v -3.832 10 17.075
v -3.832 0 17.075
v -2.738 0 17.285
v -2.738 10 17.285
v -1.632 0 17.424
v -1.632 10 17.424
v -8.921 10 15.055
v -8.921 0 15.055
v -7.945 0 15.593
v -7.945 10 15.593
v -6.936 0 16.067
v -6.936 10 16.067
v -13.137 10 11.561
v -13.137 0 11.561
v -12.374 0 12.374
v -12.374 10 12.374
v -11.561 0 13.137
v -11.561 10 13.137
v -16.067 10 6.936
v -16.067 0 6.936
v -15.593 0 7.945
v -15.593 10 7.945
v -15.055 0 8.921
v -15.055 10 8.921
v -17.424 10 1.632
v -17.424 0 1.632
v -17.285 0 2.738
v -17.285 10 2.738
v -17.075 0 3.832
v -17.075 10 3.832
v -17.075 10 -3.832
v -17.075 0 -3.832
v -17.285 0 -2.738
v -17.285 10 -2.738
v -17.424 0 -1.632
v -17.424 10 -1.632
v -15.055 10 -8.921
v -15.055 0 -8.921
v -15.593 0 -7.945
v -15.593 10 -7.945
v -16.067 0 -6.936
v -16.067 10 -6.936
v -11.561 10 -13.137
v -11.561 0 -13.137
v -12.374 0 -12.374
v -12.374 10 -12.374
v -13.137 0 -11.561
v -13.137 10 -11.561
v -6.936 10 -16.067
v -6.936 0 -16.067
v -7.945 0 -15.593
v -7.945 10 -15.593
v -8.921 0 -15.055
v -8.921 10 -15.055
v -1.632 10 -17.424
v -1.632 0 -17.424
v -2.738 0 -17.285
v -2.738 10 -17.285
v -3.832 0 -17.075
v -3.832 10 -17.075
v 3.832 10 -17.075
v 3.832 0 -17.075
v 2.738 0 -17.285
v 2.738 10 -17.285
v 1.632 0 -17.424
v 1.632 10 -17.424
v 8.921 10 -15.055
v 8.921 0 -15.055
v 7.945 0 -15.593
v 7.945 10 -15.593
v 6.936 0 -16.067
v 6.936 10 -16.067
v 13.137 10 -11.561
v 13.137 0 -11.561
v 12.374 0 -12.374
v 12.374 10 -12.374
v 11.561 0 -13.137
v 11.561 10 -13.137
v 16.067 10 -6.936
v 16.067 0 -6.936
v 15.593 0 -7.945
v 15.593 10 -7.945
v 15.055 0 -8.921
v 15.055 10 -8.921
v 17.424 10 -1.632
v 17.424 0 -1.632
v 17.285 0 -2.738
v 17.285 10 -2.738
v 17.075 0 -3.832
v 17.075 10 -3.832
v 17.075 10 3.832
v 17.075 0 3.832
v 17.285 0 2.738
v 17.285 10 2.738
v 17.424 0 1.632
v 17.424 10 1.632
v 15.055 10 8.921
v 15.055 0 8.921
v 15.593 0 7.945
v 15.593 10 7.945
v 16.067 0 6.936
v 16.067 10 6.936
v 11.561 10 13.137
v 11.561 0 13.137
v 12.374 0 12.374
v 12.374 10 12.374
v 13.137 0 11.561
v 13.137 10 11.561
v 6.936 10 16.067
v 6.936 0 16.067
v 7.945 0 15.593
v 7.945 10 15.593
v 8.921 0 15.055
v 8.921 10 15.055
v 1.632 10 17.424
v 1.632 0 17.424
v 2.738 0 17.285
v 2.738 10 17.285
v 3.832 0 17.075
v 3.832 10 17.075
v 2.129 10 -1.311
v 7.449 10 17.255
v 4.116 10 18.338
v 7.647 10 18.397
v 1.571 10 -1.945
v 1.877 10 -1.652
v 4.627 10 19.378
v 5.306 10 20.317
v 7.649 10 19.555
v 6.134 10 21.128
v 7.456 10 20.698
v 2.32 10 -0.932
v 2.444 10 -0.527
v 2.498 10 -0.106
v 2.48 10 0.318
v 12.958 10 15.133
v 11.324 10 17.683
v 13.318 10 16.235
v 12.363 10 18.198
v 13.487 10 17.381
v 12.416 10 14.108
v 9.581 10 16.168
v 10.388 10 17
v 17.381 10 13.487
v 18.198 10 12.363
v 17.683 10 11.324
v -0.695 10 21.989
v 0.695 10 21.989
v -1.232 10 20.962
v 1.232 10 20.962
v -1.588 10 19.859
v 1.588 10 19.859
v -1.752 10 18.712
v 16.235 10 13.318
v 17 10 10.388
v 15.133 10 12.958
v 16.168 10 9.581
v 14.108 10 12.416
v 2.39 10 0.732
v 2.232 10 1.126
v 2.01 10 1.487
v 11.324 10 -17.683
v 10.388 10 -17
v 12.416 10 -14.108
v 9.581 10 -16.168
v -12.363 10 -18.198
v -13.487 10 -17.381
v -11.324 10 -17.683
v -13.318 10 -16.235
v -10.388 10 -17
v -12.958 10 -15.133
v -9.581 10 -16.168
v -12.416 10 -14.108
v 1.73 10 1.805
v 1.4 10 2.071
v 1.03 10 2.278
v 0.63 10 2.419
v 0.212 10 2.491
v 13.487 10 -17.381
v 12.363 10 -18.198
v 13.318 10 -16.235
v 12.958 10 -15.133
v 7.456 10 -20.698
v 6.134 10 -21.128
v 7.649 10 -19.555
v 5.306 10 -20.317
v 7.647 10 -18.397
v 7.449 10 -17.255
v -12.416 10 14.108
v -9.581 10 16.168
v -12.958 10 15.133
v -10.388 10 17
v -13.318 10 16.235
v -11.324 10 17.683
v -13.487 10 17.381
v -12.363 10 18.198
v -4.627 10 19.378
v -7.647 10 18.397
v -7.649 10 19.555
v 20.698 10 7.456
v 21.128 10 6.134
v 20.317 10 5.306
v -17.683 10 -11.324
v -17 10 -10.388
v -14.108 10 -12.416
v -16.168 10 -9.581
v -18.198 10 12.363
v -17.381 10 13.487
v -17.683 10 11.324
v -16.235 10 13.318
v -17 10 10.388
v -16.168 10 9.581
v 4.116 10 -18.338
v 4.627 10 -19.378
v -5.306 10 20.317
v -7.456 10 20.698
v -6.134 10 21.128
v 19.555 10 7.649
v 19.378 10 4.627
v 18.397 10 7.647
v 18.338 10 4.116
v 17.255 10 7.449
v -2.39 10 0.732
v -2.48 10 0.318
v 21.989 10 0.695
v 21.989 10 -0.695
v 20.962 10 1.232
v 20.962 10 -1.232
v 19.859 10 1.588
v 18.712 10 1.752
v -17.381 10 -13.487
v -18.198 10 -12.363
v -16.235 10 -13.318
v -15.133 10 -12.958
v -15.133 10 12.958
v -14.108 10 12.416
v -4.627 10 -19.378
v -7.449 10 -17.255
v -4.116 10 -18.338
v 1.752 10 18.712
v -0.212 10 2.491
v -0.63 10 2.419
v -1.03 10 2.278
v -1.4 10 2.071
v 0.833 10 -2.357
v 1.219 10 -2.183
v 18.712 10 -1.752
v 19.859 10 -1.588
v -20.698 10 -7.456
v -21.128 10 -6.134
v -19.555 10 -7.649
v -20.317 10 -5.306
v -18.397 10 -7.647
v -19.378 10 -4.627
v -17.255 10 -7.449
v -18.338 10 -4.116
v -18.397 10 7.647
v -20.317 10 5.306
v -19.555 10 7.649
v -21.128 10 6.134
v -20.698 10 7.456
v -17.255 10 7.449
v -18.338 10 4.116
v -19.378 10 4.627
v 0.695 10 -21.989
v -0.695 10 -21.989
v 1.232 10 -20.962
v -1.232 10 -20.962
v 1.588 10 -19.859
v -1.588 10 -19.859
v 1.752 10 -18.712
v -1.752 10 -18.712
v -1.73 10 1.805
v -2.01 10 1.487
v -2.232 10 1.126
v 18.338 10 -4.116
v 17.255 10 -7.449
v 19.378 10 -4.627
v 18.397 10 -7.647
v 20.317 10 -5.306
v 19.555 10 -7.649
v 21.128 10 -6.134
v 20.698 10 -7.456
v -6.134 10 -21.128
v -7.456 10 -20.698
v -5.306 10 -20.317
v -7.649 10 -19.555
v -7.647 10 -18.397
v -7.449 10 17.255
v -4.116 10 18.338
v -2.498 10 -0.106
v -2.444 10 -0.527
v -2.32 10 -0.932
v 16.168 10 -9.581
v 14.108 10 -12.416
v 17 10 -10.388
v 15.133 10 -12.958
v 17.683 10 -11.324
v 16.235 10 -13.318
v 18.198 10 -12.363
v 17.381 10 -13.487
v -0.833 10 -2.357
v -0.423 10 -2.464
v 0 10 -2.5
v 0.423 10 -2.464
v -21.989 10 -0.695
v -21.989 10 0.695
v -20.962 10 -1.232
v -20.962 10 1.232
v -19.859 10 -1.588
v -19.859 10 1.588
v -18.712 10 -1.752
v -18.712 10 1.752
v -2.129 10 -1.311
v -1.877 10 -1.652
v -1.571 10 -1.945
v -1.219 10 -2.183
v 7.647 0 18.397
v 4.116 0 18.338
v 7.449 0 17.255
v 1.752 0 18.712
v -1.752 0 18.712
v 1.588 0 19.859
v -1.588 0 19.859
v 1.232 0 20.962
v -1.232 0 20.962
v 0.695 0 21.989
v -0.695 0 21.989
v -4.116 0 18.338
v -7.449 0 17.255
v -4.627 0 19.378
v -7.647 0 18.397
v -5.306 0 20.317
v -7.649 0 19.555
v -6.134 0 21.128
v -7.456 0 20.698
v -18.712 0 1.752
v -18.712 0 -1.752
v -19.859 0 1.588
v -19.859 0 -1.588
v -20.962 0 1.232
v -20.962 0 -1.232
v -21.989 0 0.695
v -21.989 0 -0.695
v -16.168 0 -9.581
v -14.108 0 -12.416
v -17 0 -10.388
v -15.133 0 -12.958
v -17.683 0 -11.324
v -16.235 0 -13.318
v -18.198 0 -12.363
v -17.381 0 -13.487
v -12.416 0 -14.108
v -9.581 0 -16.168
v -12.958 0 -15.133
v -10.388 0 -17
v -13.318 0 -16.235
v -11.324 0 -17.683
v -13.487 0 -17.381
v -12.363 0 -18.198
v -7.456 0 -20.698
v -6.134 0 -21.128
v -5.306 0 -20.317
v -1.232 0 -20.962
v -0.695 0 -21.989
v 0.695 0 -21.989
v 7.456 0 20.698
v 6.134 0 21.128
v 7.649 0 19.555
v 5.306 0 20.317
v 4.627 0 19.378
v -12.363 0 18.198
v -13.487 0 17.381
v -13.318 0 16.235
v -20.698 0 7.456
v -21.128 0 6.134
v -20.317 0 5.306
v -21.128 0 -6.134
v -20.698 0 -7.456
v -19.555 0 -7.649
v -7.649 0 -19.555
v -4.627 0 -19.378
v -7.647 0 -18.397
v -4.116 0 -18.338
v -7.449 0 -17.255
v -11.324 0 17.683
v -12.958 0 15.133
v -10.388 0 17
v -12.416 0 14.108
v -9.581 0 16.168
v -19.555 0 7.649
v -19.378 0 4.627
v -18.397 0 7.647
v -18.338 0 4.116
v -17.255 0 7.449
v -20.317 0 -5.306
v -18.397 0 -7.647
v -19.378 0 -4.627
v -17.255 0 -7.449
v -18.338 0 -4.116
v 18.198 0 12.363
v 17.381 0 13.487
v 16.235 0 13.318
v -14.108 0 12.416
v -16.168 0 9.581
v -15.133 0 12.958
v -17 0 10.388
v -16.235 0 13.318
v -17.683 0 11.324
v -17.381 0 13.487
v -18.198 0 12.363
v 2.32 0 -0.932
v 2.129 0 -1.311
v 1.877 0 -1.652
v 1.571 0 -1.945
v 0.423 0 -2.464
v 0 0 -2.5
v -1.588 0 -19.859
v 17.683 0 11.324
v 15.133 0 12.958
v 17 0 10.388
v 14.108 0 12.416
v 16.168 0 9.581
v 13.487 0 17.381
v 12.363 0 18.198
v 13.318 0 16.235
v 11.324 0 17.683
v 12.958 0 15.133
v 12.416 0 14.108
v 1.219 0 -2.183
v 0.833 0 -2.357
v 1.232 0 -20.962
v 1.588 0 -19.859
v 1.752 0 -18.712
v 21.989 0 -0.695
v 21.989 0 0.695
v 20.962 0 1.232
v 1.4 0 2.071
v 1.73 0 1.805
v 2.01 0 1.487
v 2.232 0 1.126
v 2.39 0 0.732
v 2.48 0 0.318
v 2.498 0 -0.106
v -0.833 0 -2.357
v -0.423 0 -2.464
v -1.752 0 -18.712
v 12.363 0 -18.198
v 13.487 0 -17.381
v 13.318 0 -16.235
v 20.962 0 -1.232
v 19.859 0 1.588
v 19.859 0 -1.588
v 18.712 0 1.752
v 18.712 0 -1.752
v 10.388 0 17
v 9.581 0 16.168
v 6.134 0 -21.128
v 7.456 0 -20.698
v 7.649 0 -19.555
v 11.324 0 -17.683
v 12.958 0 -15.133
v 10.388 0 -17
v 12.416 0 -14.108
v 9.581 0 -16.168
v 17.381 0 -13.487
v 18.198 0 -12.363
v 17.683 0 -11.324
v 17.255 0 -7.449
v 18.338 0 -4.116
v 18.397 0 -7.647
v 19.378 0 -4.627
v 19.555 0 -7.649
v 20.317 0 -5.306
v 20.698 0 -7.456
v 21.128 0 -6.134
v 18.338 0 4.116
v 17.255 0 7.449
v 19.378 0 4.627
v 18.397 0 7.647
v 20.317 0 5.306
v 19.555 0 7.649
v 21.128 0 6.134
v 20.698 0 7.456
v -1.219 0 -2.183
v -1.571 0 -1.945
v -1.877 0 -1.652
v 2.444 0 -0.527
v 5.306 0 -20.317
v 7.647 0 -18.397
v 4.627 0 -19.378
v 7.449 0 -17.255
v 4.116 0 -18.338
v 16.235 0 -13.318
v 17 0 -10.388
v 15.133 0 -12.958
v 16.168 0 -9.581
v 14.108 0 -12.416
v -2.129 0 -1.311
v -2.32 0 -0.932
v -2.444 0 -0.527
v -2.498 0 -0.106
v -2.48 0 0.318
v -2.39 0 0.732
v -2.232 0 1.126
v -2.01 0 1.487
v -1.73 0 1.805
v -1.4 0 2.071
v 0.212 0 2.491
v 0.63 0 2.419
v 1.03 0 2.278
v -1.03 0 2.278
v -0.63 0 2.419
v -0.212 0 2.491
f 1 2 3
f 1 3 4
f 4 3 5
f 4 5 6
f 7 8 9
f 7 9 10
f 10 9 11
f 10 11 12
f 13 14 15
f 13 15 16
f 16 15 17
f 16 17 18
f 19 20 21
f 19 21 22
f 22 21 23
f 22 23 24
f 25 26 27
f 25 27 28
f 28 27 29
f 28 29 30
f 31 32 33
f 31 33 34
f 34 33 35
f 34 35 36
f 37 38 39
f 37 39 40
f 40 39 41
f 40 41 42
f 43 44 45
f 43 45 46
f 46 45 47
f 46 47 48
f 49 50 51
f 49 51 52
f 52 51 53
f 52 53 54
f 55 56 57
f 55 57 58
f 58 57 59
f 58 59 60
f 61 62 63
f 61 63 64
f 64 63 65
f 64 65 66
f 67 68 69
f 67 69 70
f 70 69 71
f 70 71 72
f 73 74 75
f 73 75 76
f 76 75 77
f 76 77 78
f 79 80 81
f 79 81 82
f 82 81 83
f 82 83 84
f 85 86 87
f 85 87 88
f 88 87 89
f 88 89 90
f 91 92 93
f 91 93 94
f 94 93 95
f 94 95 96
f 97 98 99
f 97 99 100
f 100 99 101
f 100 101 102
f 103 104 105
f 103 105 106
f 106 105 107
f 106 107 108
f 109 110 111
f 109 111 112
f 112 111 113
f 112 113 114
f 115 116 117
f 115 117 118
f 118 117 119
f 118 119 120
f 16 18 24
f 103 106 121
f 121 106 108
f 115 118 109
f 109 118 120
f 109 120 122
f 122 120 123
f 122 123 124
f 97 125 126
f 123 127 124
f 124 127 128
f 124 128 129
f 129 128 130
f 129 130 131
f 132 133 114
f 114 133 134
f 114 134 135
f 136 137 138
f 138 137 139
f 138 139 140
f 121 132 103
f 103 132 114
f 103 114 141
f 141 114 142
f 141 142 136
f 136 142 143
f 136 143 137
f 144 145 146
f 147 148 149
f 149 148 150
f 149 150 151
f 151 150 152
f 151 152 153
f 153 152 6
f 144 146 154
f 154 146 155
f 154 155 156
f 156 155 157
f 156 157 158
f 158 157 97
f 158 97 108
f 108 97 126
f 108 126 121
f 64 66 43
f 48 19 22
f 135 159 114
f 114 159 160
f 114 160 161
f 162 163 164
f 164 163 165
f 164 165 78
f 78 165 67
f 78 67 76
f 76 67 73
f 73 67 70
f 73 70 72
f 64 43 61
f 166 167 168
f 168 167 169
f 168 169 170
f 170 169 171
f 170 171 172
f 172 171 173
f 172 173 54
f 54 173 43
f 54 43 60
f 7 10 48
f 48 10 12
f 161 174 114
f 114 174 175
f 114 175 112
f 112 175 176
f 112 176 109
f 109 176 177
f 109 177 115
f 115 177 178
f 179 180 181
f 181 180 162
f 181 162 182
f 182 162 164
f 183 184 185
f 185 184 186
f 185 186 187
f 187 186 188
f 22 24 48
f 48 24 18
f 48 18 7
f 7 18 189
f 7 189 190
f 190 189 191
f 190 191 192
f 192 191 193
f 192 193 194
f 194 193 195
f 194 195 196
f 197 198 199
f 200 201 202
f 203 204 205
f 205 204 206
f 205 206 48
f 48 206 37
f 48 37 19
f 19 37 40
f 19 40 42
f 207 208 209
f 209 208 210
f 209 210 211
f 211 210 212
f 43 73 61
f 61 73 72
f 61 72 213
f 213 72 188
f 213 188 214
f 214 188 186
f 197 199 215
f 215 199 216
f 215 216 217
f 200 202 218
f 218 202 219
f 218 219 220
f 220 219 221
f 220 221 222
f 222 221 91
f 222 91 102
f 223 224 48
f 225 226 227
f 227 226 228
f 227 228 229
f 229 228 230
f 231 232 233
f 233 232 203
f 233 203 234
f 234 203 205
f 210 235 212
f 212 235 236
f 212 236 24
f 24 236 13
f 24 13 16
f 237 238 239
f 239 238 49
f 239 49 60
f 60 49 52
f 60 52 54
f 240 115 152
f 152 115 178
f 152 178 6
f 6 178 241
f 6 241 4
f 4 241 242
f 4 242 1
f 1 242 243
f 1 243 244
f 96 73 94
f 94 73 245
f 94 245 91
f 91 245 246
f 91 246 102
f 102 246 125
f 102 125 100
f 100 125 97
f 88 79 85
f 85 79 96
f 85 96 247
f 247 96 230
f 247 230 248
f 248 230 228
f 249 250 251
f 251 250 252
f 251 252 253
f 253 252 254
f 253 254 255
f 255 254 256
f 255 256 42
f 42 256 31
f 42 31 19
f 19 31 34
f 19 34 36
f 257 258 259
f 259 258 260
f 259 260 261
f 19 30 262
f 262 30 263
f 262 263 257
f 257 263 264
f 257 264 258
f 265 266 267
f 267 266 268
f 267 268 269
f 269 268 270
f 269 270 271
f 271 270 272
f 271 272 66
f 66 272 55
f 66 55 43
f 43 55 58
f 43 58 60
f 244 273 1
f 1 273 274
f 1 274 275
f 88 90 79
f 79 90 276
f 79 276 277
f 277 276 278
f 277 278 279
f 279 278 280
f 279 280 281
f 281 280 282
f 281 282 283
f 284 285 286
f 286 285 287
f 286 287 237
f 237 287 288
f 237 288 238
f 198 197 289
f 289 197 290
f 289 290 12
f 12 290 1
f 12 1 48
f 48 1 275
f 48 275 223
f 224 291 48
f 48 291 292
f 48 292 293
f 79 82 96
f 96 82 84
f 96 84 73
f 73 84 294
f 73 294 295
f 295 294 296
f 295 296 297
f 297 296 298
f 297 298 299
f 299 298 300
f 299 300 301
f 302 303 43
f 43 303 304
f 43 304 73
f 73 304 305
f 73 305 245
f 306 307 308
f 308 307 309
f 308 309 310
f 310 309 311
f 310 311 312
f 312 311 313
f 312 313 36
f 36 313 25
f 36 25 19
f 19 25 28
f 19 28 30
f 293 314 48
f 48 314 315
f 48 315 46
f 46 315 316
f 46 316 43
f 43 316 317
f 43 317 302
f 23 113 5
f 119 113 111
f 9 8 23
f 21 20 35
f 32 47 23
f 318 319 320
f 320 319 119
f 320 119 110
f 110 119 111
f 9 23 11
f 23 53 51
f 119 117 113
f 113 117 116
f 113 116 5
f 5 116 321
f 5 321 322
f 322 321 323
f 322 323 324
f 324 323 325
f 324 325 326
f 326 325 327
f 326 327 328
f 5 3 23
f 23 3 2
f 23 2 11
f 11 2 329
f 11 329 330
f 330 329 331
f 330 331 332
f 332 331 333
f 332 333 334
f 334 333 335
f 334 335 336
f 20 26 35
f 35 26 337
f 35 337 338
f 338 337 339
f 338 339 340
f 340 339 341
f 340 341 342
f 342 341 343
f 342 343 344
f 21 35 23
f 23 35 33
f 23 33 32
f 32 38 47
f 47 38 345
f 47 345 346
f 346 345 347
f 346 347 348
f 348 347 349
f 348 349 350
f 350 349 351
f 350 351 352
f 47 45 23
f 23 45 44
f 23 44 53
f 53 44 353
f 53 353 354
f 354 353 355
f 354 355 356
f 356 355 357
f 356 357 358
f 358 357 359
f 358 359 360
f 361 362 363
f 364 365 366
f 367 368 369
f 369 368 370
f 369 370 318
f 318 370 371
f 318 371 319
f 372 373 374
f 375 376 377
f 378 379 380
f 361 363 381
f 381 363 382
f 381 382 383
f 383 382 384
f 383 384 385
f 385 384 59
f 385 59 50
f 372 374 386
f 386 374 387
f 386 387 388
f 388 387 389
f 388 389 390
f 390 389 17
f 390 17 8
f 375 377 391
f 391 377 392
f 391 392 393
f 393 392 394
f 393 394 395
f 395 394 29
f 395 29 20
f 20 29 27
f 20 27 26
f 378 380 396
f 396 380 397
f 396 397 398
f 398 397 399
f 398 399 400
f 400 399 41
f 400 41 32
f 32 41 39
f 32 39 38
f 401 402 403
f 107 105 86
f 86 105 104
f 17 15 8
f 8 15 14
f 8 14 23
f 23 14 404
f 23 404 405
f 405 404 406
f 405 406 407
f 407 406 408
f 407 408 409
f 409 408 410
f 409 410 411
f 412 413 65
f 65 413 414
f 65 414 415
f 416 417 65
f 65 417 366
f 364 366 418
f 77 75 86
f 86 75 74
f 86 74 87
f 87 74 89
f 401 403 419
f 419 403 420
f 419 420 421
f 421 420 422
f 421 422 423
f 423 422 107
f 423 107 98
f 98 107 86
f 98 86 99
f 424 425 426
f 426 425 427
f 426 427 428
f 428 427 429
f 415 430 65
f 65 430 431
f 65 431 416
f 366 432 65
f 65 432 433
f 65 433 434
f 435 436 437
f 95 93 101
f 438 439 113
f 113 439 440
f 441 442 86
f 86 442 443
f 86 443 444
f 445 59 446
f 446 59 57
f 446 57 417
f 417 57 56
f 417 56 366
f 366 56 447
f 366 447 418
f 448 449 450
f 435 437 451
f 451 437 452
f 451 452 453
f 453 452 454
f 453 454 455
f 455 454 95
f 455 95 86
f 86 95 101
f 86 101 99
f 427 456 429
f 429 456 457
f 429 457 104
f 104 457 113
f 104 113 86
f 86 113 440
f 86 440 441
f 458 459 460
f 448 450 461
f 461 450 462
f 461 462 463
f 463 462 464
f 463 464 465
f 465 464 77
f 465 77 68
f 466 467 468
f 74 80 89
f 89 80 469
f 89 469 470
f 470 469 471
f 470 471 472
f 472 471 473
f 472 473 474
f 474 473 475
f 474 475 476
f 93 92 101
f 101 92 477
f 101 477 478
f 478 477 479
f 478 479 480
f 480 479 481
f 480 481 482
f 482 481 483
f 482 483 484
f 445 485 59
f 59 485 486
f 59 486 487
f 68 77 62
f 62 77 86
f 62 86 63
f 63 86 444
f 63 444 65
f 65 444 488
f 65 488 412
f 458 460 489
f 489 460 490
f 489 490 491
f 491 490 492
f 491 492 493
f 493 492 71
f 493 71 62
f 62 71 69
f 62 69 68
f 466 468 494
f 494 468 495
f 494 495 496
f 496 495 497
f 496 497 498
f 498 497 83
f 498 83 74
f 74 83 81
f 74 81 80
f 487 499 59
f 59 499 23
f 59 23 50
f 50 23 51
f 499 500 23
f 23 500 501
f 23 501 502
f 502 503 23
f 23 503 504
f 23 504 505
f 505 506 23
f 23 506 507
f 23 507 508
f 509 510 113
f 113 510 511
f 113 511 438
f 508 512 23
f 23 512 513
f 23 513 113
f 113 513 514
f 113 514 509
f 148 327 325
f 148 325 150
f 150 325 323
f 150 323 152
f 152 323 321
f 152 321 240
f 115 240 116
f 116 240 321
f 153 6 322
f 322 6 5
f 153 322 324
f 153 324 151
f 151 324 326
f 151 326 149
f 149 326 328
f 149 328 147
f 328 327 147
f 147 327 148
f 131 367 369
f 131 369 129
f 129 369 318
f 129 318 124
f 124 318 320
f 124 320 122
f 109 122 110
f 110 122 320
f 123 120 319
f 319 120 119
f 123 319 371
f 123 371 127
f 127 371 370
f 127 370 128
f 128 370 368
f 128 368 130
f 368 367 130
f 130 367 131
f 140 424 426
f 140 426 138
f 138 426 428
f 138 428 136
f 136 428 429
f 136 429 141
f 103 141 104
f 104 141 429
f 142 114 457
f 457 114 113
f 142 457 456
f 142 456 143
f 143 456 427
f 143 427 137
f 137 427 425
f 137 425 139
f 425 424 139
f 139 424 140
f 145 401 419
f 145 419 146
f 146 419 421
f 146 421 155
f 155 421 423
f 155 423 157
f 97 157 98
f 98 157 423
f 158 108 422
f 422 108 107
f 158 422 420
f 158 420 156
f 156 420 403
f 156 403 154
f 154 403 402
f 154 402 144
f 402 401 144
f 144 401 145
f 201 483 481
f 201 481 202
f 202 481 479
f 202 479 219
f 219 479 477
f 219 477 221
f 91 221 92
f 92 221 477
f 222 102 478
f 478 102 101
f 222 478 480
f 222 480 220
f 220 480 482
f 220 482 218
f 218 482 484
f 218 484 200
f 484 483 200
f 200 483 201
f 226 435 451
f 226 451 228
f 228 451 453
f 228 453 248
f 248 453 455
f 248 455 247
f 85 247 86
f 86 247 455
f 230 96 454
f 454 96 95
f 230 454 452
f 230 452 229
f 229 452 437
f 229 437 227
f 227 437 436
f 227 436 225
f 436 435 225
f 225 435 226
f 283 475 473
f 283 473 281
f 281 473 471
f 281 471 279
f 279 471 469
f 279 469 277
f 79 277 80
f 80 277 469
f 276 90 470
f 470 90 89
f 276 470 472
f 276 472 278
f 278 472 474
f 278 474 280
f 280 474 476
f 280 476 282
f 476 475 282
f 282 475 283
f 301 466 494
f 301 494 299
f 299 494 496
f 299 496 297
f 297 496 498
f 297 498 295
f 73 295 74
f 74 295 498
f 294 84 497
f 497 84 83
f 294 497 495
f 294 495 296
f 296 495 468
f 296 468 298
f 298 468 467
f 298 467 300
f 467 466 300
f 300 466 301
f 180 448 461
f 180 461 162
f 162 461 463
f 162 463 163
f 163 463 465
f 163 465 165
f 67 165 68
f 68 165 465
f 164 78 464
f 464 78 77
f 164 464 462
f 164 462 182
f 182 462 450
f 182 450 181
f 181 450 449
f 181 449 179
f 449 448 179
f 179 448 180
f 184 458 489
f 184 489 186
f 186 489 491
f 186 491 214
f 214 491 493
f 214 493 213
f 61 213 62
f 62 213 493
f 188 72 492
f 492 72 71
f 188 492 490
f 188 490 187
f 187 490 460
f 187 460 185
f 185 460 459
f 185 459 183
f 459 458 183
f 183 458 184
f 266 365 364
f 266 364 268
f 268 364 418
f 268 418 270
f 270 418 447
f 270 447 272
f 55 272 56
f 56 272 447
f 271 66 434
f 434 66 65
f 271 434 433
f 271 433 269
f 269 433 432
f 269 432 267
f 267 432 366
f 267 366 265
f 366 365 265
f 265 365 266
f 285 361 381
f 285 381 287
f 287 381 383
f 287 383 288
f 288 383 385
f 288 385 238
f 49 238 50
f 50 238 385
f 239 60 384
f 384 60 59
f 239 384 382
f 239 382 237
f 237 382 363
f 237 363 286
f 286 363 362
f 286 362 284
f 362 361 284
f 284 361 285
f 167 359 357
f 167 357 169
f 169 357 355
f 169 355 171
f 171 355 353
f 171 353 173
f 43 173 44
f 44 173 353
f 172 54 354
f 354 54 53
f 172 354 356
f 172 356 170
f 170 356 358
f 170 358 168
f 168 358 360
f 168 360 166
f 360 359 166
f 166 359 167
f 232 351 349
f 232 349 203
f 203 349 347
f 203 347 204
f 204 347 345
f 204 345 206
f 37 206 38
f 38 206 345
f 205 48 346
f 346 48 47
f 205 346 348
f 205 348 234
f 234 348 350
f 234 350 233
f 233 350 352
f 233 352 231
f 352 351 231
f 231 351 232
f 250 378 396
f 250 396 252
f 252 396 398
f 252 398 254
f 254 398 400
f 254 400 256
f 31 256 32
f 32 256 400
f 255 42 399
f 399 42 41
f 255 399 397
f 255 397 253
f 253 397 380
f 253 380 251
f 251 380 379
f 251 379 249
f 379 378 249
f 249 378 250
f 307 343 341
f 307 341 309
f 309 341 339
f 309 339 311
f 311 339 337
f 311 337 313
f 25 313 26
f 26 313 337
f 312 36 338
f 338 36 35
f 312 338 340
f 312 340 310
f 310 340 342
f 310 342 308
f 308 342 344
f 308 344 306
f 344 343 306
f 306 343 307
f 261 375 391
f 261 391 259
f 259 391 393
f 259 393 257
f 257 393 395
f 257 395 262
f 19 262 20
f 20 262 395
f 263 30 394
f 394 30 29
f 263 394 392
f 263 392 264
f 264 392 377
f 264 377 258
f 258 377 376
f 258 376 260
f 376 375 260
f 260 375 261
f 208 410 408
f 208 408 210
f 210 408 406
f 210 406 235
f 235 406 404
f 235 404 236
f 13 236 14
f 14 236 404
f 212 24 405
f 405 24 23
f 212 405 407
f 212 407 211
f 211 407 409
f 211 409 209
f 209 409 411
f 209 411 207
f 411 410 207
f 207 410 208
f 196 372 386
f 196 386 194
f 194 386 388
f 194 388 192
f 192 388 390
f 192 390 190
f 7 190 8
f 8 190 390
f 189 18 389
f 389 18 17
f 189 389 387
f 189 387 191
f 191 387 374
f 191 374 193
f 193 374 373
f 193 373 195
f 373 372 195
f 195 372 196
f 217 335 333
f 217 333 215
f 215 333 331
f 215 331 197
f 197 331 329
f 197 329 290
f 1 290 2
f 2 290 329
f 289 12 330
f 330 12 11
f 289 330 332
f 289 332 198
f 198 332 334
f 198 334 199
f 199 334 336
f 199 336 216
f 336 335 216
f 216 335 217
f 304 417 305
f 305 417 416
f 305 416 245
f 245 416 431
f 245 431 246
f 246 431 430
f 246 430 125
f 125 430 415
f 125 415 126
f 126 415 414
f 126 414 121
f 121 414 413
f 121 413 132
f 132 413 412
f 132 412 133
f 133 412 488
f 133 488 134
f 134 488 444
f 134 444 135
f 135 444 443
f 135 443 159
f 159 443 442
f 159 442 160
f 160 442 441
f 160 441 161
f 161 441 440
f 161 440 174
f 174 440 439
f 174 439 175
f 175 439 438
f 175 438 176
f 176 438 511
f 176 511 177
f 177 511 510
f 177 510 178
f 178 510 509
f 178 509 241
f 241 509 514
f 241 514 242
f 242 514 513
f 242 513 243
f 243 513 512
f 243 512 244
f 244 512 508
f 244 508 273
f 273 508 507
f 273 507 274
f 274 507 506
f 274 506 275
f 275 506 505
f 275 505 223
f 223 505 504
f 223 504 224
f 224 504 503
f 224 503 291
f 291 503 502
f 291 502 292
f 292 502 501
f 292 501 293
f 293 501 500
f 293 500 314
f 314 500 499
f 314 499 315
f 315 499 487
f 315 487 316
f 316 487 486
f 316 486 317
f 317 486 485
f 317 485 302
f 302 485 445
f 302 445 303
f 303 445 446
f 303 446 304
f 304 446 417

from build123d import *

# Parameters (mm, degrees)
SKETCH_1_R               = 17.5
EXTRUDE_1_DEPTH          = 10
EXTRUDE_2_DEPTH          = 10
PATTERN_CIRCULAR_1_COUNT = 20
SKETCH_3_R               = 2.5
CUT_EXTRUDE_1_DEPTH      = 33.680269277


with BuildPart() as part:
    # Эскиз1 → Бобышка-Вытянуть1 (new body)
    with BuildSketch(Plane(origin=(0, 0, 0), x_dir=(1, 0, 0), z_dir=(0, 1, 0))):
        with Locations(Location((0, 0, 0), (0, 0, 270))):
            Circle(SKETCH_1_R)
    extrude(amount=EXTRUDE_1_DEPTH)

    # Эскиз2 → Бобышка-Вытянуть2 (add)
    with BuildSketch(Plane.XZ):
        with BuildLine():
            Line((-1.631691003, 17.423764934), (-1.752328912, 18.711978549))
            ThreePointArc((-1.752328912, 18.711978549), (-1.433460227, 20.418219236), (-0.694874519, 21.989023384))
            ThreePointArc((-0.694874519, 21.989023384), (0, 22), (0.694874519, 21.989023384))
            ThreePointArc((0.694874519, 21.989023384), (1.433460227, 20.418219236), (1.752328912, 18.711978549))
            Line((1.752328912, 18.711978549), (1.631691003, 17.423764934))
            ThreePointArc((1.631691003, 17.423764934), (0, 17.5), (-1.631691003, 17.423764934))
        make_face()
    extrude_2 = extrude(amount=-EXTRUDE_2_DEPTH)

    # Круговой массив1: Бобышка-Вытянуть2 ×20 about axis
    pattern_circular_1_axis = Axis((0, 0, 0), (0, 1, 0))
    for i in range(1, PATTERN_CIRCULAR_1_COUNT):
        add(extrude_2.rotate(pattern_circular_1_axis, i * 360 / PATTERN_CIRCULAR_1_COUNT))

    # Эскиз3 → Вырез-Вытянуть1 (cut, through all)
    with BuildSketch(Plane.XZ):
        with Locations(Location((0, 0, 0), (0, 0, 270))):
            Circle(SKETCH_3_R)
    extrude(amount=-CUT_EXTRUDE_1_DEPTH, mode=Mode.SUBTRACT)


solid = part.part
